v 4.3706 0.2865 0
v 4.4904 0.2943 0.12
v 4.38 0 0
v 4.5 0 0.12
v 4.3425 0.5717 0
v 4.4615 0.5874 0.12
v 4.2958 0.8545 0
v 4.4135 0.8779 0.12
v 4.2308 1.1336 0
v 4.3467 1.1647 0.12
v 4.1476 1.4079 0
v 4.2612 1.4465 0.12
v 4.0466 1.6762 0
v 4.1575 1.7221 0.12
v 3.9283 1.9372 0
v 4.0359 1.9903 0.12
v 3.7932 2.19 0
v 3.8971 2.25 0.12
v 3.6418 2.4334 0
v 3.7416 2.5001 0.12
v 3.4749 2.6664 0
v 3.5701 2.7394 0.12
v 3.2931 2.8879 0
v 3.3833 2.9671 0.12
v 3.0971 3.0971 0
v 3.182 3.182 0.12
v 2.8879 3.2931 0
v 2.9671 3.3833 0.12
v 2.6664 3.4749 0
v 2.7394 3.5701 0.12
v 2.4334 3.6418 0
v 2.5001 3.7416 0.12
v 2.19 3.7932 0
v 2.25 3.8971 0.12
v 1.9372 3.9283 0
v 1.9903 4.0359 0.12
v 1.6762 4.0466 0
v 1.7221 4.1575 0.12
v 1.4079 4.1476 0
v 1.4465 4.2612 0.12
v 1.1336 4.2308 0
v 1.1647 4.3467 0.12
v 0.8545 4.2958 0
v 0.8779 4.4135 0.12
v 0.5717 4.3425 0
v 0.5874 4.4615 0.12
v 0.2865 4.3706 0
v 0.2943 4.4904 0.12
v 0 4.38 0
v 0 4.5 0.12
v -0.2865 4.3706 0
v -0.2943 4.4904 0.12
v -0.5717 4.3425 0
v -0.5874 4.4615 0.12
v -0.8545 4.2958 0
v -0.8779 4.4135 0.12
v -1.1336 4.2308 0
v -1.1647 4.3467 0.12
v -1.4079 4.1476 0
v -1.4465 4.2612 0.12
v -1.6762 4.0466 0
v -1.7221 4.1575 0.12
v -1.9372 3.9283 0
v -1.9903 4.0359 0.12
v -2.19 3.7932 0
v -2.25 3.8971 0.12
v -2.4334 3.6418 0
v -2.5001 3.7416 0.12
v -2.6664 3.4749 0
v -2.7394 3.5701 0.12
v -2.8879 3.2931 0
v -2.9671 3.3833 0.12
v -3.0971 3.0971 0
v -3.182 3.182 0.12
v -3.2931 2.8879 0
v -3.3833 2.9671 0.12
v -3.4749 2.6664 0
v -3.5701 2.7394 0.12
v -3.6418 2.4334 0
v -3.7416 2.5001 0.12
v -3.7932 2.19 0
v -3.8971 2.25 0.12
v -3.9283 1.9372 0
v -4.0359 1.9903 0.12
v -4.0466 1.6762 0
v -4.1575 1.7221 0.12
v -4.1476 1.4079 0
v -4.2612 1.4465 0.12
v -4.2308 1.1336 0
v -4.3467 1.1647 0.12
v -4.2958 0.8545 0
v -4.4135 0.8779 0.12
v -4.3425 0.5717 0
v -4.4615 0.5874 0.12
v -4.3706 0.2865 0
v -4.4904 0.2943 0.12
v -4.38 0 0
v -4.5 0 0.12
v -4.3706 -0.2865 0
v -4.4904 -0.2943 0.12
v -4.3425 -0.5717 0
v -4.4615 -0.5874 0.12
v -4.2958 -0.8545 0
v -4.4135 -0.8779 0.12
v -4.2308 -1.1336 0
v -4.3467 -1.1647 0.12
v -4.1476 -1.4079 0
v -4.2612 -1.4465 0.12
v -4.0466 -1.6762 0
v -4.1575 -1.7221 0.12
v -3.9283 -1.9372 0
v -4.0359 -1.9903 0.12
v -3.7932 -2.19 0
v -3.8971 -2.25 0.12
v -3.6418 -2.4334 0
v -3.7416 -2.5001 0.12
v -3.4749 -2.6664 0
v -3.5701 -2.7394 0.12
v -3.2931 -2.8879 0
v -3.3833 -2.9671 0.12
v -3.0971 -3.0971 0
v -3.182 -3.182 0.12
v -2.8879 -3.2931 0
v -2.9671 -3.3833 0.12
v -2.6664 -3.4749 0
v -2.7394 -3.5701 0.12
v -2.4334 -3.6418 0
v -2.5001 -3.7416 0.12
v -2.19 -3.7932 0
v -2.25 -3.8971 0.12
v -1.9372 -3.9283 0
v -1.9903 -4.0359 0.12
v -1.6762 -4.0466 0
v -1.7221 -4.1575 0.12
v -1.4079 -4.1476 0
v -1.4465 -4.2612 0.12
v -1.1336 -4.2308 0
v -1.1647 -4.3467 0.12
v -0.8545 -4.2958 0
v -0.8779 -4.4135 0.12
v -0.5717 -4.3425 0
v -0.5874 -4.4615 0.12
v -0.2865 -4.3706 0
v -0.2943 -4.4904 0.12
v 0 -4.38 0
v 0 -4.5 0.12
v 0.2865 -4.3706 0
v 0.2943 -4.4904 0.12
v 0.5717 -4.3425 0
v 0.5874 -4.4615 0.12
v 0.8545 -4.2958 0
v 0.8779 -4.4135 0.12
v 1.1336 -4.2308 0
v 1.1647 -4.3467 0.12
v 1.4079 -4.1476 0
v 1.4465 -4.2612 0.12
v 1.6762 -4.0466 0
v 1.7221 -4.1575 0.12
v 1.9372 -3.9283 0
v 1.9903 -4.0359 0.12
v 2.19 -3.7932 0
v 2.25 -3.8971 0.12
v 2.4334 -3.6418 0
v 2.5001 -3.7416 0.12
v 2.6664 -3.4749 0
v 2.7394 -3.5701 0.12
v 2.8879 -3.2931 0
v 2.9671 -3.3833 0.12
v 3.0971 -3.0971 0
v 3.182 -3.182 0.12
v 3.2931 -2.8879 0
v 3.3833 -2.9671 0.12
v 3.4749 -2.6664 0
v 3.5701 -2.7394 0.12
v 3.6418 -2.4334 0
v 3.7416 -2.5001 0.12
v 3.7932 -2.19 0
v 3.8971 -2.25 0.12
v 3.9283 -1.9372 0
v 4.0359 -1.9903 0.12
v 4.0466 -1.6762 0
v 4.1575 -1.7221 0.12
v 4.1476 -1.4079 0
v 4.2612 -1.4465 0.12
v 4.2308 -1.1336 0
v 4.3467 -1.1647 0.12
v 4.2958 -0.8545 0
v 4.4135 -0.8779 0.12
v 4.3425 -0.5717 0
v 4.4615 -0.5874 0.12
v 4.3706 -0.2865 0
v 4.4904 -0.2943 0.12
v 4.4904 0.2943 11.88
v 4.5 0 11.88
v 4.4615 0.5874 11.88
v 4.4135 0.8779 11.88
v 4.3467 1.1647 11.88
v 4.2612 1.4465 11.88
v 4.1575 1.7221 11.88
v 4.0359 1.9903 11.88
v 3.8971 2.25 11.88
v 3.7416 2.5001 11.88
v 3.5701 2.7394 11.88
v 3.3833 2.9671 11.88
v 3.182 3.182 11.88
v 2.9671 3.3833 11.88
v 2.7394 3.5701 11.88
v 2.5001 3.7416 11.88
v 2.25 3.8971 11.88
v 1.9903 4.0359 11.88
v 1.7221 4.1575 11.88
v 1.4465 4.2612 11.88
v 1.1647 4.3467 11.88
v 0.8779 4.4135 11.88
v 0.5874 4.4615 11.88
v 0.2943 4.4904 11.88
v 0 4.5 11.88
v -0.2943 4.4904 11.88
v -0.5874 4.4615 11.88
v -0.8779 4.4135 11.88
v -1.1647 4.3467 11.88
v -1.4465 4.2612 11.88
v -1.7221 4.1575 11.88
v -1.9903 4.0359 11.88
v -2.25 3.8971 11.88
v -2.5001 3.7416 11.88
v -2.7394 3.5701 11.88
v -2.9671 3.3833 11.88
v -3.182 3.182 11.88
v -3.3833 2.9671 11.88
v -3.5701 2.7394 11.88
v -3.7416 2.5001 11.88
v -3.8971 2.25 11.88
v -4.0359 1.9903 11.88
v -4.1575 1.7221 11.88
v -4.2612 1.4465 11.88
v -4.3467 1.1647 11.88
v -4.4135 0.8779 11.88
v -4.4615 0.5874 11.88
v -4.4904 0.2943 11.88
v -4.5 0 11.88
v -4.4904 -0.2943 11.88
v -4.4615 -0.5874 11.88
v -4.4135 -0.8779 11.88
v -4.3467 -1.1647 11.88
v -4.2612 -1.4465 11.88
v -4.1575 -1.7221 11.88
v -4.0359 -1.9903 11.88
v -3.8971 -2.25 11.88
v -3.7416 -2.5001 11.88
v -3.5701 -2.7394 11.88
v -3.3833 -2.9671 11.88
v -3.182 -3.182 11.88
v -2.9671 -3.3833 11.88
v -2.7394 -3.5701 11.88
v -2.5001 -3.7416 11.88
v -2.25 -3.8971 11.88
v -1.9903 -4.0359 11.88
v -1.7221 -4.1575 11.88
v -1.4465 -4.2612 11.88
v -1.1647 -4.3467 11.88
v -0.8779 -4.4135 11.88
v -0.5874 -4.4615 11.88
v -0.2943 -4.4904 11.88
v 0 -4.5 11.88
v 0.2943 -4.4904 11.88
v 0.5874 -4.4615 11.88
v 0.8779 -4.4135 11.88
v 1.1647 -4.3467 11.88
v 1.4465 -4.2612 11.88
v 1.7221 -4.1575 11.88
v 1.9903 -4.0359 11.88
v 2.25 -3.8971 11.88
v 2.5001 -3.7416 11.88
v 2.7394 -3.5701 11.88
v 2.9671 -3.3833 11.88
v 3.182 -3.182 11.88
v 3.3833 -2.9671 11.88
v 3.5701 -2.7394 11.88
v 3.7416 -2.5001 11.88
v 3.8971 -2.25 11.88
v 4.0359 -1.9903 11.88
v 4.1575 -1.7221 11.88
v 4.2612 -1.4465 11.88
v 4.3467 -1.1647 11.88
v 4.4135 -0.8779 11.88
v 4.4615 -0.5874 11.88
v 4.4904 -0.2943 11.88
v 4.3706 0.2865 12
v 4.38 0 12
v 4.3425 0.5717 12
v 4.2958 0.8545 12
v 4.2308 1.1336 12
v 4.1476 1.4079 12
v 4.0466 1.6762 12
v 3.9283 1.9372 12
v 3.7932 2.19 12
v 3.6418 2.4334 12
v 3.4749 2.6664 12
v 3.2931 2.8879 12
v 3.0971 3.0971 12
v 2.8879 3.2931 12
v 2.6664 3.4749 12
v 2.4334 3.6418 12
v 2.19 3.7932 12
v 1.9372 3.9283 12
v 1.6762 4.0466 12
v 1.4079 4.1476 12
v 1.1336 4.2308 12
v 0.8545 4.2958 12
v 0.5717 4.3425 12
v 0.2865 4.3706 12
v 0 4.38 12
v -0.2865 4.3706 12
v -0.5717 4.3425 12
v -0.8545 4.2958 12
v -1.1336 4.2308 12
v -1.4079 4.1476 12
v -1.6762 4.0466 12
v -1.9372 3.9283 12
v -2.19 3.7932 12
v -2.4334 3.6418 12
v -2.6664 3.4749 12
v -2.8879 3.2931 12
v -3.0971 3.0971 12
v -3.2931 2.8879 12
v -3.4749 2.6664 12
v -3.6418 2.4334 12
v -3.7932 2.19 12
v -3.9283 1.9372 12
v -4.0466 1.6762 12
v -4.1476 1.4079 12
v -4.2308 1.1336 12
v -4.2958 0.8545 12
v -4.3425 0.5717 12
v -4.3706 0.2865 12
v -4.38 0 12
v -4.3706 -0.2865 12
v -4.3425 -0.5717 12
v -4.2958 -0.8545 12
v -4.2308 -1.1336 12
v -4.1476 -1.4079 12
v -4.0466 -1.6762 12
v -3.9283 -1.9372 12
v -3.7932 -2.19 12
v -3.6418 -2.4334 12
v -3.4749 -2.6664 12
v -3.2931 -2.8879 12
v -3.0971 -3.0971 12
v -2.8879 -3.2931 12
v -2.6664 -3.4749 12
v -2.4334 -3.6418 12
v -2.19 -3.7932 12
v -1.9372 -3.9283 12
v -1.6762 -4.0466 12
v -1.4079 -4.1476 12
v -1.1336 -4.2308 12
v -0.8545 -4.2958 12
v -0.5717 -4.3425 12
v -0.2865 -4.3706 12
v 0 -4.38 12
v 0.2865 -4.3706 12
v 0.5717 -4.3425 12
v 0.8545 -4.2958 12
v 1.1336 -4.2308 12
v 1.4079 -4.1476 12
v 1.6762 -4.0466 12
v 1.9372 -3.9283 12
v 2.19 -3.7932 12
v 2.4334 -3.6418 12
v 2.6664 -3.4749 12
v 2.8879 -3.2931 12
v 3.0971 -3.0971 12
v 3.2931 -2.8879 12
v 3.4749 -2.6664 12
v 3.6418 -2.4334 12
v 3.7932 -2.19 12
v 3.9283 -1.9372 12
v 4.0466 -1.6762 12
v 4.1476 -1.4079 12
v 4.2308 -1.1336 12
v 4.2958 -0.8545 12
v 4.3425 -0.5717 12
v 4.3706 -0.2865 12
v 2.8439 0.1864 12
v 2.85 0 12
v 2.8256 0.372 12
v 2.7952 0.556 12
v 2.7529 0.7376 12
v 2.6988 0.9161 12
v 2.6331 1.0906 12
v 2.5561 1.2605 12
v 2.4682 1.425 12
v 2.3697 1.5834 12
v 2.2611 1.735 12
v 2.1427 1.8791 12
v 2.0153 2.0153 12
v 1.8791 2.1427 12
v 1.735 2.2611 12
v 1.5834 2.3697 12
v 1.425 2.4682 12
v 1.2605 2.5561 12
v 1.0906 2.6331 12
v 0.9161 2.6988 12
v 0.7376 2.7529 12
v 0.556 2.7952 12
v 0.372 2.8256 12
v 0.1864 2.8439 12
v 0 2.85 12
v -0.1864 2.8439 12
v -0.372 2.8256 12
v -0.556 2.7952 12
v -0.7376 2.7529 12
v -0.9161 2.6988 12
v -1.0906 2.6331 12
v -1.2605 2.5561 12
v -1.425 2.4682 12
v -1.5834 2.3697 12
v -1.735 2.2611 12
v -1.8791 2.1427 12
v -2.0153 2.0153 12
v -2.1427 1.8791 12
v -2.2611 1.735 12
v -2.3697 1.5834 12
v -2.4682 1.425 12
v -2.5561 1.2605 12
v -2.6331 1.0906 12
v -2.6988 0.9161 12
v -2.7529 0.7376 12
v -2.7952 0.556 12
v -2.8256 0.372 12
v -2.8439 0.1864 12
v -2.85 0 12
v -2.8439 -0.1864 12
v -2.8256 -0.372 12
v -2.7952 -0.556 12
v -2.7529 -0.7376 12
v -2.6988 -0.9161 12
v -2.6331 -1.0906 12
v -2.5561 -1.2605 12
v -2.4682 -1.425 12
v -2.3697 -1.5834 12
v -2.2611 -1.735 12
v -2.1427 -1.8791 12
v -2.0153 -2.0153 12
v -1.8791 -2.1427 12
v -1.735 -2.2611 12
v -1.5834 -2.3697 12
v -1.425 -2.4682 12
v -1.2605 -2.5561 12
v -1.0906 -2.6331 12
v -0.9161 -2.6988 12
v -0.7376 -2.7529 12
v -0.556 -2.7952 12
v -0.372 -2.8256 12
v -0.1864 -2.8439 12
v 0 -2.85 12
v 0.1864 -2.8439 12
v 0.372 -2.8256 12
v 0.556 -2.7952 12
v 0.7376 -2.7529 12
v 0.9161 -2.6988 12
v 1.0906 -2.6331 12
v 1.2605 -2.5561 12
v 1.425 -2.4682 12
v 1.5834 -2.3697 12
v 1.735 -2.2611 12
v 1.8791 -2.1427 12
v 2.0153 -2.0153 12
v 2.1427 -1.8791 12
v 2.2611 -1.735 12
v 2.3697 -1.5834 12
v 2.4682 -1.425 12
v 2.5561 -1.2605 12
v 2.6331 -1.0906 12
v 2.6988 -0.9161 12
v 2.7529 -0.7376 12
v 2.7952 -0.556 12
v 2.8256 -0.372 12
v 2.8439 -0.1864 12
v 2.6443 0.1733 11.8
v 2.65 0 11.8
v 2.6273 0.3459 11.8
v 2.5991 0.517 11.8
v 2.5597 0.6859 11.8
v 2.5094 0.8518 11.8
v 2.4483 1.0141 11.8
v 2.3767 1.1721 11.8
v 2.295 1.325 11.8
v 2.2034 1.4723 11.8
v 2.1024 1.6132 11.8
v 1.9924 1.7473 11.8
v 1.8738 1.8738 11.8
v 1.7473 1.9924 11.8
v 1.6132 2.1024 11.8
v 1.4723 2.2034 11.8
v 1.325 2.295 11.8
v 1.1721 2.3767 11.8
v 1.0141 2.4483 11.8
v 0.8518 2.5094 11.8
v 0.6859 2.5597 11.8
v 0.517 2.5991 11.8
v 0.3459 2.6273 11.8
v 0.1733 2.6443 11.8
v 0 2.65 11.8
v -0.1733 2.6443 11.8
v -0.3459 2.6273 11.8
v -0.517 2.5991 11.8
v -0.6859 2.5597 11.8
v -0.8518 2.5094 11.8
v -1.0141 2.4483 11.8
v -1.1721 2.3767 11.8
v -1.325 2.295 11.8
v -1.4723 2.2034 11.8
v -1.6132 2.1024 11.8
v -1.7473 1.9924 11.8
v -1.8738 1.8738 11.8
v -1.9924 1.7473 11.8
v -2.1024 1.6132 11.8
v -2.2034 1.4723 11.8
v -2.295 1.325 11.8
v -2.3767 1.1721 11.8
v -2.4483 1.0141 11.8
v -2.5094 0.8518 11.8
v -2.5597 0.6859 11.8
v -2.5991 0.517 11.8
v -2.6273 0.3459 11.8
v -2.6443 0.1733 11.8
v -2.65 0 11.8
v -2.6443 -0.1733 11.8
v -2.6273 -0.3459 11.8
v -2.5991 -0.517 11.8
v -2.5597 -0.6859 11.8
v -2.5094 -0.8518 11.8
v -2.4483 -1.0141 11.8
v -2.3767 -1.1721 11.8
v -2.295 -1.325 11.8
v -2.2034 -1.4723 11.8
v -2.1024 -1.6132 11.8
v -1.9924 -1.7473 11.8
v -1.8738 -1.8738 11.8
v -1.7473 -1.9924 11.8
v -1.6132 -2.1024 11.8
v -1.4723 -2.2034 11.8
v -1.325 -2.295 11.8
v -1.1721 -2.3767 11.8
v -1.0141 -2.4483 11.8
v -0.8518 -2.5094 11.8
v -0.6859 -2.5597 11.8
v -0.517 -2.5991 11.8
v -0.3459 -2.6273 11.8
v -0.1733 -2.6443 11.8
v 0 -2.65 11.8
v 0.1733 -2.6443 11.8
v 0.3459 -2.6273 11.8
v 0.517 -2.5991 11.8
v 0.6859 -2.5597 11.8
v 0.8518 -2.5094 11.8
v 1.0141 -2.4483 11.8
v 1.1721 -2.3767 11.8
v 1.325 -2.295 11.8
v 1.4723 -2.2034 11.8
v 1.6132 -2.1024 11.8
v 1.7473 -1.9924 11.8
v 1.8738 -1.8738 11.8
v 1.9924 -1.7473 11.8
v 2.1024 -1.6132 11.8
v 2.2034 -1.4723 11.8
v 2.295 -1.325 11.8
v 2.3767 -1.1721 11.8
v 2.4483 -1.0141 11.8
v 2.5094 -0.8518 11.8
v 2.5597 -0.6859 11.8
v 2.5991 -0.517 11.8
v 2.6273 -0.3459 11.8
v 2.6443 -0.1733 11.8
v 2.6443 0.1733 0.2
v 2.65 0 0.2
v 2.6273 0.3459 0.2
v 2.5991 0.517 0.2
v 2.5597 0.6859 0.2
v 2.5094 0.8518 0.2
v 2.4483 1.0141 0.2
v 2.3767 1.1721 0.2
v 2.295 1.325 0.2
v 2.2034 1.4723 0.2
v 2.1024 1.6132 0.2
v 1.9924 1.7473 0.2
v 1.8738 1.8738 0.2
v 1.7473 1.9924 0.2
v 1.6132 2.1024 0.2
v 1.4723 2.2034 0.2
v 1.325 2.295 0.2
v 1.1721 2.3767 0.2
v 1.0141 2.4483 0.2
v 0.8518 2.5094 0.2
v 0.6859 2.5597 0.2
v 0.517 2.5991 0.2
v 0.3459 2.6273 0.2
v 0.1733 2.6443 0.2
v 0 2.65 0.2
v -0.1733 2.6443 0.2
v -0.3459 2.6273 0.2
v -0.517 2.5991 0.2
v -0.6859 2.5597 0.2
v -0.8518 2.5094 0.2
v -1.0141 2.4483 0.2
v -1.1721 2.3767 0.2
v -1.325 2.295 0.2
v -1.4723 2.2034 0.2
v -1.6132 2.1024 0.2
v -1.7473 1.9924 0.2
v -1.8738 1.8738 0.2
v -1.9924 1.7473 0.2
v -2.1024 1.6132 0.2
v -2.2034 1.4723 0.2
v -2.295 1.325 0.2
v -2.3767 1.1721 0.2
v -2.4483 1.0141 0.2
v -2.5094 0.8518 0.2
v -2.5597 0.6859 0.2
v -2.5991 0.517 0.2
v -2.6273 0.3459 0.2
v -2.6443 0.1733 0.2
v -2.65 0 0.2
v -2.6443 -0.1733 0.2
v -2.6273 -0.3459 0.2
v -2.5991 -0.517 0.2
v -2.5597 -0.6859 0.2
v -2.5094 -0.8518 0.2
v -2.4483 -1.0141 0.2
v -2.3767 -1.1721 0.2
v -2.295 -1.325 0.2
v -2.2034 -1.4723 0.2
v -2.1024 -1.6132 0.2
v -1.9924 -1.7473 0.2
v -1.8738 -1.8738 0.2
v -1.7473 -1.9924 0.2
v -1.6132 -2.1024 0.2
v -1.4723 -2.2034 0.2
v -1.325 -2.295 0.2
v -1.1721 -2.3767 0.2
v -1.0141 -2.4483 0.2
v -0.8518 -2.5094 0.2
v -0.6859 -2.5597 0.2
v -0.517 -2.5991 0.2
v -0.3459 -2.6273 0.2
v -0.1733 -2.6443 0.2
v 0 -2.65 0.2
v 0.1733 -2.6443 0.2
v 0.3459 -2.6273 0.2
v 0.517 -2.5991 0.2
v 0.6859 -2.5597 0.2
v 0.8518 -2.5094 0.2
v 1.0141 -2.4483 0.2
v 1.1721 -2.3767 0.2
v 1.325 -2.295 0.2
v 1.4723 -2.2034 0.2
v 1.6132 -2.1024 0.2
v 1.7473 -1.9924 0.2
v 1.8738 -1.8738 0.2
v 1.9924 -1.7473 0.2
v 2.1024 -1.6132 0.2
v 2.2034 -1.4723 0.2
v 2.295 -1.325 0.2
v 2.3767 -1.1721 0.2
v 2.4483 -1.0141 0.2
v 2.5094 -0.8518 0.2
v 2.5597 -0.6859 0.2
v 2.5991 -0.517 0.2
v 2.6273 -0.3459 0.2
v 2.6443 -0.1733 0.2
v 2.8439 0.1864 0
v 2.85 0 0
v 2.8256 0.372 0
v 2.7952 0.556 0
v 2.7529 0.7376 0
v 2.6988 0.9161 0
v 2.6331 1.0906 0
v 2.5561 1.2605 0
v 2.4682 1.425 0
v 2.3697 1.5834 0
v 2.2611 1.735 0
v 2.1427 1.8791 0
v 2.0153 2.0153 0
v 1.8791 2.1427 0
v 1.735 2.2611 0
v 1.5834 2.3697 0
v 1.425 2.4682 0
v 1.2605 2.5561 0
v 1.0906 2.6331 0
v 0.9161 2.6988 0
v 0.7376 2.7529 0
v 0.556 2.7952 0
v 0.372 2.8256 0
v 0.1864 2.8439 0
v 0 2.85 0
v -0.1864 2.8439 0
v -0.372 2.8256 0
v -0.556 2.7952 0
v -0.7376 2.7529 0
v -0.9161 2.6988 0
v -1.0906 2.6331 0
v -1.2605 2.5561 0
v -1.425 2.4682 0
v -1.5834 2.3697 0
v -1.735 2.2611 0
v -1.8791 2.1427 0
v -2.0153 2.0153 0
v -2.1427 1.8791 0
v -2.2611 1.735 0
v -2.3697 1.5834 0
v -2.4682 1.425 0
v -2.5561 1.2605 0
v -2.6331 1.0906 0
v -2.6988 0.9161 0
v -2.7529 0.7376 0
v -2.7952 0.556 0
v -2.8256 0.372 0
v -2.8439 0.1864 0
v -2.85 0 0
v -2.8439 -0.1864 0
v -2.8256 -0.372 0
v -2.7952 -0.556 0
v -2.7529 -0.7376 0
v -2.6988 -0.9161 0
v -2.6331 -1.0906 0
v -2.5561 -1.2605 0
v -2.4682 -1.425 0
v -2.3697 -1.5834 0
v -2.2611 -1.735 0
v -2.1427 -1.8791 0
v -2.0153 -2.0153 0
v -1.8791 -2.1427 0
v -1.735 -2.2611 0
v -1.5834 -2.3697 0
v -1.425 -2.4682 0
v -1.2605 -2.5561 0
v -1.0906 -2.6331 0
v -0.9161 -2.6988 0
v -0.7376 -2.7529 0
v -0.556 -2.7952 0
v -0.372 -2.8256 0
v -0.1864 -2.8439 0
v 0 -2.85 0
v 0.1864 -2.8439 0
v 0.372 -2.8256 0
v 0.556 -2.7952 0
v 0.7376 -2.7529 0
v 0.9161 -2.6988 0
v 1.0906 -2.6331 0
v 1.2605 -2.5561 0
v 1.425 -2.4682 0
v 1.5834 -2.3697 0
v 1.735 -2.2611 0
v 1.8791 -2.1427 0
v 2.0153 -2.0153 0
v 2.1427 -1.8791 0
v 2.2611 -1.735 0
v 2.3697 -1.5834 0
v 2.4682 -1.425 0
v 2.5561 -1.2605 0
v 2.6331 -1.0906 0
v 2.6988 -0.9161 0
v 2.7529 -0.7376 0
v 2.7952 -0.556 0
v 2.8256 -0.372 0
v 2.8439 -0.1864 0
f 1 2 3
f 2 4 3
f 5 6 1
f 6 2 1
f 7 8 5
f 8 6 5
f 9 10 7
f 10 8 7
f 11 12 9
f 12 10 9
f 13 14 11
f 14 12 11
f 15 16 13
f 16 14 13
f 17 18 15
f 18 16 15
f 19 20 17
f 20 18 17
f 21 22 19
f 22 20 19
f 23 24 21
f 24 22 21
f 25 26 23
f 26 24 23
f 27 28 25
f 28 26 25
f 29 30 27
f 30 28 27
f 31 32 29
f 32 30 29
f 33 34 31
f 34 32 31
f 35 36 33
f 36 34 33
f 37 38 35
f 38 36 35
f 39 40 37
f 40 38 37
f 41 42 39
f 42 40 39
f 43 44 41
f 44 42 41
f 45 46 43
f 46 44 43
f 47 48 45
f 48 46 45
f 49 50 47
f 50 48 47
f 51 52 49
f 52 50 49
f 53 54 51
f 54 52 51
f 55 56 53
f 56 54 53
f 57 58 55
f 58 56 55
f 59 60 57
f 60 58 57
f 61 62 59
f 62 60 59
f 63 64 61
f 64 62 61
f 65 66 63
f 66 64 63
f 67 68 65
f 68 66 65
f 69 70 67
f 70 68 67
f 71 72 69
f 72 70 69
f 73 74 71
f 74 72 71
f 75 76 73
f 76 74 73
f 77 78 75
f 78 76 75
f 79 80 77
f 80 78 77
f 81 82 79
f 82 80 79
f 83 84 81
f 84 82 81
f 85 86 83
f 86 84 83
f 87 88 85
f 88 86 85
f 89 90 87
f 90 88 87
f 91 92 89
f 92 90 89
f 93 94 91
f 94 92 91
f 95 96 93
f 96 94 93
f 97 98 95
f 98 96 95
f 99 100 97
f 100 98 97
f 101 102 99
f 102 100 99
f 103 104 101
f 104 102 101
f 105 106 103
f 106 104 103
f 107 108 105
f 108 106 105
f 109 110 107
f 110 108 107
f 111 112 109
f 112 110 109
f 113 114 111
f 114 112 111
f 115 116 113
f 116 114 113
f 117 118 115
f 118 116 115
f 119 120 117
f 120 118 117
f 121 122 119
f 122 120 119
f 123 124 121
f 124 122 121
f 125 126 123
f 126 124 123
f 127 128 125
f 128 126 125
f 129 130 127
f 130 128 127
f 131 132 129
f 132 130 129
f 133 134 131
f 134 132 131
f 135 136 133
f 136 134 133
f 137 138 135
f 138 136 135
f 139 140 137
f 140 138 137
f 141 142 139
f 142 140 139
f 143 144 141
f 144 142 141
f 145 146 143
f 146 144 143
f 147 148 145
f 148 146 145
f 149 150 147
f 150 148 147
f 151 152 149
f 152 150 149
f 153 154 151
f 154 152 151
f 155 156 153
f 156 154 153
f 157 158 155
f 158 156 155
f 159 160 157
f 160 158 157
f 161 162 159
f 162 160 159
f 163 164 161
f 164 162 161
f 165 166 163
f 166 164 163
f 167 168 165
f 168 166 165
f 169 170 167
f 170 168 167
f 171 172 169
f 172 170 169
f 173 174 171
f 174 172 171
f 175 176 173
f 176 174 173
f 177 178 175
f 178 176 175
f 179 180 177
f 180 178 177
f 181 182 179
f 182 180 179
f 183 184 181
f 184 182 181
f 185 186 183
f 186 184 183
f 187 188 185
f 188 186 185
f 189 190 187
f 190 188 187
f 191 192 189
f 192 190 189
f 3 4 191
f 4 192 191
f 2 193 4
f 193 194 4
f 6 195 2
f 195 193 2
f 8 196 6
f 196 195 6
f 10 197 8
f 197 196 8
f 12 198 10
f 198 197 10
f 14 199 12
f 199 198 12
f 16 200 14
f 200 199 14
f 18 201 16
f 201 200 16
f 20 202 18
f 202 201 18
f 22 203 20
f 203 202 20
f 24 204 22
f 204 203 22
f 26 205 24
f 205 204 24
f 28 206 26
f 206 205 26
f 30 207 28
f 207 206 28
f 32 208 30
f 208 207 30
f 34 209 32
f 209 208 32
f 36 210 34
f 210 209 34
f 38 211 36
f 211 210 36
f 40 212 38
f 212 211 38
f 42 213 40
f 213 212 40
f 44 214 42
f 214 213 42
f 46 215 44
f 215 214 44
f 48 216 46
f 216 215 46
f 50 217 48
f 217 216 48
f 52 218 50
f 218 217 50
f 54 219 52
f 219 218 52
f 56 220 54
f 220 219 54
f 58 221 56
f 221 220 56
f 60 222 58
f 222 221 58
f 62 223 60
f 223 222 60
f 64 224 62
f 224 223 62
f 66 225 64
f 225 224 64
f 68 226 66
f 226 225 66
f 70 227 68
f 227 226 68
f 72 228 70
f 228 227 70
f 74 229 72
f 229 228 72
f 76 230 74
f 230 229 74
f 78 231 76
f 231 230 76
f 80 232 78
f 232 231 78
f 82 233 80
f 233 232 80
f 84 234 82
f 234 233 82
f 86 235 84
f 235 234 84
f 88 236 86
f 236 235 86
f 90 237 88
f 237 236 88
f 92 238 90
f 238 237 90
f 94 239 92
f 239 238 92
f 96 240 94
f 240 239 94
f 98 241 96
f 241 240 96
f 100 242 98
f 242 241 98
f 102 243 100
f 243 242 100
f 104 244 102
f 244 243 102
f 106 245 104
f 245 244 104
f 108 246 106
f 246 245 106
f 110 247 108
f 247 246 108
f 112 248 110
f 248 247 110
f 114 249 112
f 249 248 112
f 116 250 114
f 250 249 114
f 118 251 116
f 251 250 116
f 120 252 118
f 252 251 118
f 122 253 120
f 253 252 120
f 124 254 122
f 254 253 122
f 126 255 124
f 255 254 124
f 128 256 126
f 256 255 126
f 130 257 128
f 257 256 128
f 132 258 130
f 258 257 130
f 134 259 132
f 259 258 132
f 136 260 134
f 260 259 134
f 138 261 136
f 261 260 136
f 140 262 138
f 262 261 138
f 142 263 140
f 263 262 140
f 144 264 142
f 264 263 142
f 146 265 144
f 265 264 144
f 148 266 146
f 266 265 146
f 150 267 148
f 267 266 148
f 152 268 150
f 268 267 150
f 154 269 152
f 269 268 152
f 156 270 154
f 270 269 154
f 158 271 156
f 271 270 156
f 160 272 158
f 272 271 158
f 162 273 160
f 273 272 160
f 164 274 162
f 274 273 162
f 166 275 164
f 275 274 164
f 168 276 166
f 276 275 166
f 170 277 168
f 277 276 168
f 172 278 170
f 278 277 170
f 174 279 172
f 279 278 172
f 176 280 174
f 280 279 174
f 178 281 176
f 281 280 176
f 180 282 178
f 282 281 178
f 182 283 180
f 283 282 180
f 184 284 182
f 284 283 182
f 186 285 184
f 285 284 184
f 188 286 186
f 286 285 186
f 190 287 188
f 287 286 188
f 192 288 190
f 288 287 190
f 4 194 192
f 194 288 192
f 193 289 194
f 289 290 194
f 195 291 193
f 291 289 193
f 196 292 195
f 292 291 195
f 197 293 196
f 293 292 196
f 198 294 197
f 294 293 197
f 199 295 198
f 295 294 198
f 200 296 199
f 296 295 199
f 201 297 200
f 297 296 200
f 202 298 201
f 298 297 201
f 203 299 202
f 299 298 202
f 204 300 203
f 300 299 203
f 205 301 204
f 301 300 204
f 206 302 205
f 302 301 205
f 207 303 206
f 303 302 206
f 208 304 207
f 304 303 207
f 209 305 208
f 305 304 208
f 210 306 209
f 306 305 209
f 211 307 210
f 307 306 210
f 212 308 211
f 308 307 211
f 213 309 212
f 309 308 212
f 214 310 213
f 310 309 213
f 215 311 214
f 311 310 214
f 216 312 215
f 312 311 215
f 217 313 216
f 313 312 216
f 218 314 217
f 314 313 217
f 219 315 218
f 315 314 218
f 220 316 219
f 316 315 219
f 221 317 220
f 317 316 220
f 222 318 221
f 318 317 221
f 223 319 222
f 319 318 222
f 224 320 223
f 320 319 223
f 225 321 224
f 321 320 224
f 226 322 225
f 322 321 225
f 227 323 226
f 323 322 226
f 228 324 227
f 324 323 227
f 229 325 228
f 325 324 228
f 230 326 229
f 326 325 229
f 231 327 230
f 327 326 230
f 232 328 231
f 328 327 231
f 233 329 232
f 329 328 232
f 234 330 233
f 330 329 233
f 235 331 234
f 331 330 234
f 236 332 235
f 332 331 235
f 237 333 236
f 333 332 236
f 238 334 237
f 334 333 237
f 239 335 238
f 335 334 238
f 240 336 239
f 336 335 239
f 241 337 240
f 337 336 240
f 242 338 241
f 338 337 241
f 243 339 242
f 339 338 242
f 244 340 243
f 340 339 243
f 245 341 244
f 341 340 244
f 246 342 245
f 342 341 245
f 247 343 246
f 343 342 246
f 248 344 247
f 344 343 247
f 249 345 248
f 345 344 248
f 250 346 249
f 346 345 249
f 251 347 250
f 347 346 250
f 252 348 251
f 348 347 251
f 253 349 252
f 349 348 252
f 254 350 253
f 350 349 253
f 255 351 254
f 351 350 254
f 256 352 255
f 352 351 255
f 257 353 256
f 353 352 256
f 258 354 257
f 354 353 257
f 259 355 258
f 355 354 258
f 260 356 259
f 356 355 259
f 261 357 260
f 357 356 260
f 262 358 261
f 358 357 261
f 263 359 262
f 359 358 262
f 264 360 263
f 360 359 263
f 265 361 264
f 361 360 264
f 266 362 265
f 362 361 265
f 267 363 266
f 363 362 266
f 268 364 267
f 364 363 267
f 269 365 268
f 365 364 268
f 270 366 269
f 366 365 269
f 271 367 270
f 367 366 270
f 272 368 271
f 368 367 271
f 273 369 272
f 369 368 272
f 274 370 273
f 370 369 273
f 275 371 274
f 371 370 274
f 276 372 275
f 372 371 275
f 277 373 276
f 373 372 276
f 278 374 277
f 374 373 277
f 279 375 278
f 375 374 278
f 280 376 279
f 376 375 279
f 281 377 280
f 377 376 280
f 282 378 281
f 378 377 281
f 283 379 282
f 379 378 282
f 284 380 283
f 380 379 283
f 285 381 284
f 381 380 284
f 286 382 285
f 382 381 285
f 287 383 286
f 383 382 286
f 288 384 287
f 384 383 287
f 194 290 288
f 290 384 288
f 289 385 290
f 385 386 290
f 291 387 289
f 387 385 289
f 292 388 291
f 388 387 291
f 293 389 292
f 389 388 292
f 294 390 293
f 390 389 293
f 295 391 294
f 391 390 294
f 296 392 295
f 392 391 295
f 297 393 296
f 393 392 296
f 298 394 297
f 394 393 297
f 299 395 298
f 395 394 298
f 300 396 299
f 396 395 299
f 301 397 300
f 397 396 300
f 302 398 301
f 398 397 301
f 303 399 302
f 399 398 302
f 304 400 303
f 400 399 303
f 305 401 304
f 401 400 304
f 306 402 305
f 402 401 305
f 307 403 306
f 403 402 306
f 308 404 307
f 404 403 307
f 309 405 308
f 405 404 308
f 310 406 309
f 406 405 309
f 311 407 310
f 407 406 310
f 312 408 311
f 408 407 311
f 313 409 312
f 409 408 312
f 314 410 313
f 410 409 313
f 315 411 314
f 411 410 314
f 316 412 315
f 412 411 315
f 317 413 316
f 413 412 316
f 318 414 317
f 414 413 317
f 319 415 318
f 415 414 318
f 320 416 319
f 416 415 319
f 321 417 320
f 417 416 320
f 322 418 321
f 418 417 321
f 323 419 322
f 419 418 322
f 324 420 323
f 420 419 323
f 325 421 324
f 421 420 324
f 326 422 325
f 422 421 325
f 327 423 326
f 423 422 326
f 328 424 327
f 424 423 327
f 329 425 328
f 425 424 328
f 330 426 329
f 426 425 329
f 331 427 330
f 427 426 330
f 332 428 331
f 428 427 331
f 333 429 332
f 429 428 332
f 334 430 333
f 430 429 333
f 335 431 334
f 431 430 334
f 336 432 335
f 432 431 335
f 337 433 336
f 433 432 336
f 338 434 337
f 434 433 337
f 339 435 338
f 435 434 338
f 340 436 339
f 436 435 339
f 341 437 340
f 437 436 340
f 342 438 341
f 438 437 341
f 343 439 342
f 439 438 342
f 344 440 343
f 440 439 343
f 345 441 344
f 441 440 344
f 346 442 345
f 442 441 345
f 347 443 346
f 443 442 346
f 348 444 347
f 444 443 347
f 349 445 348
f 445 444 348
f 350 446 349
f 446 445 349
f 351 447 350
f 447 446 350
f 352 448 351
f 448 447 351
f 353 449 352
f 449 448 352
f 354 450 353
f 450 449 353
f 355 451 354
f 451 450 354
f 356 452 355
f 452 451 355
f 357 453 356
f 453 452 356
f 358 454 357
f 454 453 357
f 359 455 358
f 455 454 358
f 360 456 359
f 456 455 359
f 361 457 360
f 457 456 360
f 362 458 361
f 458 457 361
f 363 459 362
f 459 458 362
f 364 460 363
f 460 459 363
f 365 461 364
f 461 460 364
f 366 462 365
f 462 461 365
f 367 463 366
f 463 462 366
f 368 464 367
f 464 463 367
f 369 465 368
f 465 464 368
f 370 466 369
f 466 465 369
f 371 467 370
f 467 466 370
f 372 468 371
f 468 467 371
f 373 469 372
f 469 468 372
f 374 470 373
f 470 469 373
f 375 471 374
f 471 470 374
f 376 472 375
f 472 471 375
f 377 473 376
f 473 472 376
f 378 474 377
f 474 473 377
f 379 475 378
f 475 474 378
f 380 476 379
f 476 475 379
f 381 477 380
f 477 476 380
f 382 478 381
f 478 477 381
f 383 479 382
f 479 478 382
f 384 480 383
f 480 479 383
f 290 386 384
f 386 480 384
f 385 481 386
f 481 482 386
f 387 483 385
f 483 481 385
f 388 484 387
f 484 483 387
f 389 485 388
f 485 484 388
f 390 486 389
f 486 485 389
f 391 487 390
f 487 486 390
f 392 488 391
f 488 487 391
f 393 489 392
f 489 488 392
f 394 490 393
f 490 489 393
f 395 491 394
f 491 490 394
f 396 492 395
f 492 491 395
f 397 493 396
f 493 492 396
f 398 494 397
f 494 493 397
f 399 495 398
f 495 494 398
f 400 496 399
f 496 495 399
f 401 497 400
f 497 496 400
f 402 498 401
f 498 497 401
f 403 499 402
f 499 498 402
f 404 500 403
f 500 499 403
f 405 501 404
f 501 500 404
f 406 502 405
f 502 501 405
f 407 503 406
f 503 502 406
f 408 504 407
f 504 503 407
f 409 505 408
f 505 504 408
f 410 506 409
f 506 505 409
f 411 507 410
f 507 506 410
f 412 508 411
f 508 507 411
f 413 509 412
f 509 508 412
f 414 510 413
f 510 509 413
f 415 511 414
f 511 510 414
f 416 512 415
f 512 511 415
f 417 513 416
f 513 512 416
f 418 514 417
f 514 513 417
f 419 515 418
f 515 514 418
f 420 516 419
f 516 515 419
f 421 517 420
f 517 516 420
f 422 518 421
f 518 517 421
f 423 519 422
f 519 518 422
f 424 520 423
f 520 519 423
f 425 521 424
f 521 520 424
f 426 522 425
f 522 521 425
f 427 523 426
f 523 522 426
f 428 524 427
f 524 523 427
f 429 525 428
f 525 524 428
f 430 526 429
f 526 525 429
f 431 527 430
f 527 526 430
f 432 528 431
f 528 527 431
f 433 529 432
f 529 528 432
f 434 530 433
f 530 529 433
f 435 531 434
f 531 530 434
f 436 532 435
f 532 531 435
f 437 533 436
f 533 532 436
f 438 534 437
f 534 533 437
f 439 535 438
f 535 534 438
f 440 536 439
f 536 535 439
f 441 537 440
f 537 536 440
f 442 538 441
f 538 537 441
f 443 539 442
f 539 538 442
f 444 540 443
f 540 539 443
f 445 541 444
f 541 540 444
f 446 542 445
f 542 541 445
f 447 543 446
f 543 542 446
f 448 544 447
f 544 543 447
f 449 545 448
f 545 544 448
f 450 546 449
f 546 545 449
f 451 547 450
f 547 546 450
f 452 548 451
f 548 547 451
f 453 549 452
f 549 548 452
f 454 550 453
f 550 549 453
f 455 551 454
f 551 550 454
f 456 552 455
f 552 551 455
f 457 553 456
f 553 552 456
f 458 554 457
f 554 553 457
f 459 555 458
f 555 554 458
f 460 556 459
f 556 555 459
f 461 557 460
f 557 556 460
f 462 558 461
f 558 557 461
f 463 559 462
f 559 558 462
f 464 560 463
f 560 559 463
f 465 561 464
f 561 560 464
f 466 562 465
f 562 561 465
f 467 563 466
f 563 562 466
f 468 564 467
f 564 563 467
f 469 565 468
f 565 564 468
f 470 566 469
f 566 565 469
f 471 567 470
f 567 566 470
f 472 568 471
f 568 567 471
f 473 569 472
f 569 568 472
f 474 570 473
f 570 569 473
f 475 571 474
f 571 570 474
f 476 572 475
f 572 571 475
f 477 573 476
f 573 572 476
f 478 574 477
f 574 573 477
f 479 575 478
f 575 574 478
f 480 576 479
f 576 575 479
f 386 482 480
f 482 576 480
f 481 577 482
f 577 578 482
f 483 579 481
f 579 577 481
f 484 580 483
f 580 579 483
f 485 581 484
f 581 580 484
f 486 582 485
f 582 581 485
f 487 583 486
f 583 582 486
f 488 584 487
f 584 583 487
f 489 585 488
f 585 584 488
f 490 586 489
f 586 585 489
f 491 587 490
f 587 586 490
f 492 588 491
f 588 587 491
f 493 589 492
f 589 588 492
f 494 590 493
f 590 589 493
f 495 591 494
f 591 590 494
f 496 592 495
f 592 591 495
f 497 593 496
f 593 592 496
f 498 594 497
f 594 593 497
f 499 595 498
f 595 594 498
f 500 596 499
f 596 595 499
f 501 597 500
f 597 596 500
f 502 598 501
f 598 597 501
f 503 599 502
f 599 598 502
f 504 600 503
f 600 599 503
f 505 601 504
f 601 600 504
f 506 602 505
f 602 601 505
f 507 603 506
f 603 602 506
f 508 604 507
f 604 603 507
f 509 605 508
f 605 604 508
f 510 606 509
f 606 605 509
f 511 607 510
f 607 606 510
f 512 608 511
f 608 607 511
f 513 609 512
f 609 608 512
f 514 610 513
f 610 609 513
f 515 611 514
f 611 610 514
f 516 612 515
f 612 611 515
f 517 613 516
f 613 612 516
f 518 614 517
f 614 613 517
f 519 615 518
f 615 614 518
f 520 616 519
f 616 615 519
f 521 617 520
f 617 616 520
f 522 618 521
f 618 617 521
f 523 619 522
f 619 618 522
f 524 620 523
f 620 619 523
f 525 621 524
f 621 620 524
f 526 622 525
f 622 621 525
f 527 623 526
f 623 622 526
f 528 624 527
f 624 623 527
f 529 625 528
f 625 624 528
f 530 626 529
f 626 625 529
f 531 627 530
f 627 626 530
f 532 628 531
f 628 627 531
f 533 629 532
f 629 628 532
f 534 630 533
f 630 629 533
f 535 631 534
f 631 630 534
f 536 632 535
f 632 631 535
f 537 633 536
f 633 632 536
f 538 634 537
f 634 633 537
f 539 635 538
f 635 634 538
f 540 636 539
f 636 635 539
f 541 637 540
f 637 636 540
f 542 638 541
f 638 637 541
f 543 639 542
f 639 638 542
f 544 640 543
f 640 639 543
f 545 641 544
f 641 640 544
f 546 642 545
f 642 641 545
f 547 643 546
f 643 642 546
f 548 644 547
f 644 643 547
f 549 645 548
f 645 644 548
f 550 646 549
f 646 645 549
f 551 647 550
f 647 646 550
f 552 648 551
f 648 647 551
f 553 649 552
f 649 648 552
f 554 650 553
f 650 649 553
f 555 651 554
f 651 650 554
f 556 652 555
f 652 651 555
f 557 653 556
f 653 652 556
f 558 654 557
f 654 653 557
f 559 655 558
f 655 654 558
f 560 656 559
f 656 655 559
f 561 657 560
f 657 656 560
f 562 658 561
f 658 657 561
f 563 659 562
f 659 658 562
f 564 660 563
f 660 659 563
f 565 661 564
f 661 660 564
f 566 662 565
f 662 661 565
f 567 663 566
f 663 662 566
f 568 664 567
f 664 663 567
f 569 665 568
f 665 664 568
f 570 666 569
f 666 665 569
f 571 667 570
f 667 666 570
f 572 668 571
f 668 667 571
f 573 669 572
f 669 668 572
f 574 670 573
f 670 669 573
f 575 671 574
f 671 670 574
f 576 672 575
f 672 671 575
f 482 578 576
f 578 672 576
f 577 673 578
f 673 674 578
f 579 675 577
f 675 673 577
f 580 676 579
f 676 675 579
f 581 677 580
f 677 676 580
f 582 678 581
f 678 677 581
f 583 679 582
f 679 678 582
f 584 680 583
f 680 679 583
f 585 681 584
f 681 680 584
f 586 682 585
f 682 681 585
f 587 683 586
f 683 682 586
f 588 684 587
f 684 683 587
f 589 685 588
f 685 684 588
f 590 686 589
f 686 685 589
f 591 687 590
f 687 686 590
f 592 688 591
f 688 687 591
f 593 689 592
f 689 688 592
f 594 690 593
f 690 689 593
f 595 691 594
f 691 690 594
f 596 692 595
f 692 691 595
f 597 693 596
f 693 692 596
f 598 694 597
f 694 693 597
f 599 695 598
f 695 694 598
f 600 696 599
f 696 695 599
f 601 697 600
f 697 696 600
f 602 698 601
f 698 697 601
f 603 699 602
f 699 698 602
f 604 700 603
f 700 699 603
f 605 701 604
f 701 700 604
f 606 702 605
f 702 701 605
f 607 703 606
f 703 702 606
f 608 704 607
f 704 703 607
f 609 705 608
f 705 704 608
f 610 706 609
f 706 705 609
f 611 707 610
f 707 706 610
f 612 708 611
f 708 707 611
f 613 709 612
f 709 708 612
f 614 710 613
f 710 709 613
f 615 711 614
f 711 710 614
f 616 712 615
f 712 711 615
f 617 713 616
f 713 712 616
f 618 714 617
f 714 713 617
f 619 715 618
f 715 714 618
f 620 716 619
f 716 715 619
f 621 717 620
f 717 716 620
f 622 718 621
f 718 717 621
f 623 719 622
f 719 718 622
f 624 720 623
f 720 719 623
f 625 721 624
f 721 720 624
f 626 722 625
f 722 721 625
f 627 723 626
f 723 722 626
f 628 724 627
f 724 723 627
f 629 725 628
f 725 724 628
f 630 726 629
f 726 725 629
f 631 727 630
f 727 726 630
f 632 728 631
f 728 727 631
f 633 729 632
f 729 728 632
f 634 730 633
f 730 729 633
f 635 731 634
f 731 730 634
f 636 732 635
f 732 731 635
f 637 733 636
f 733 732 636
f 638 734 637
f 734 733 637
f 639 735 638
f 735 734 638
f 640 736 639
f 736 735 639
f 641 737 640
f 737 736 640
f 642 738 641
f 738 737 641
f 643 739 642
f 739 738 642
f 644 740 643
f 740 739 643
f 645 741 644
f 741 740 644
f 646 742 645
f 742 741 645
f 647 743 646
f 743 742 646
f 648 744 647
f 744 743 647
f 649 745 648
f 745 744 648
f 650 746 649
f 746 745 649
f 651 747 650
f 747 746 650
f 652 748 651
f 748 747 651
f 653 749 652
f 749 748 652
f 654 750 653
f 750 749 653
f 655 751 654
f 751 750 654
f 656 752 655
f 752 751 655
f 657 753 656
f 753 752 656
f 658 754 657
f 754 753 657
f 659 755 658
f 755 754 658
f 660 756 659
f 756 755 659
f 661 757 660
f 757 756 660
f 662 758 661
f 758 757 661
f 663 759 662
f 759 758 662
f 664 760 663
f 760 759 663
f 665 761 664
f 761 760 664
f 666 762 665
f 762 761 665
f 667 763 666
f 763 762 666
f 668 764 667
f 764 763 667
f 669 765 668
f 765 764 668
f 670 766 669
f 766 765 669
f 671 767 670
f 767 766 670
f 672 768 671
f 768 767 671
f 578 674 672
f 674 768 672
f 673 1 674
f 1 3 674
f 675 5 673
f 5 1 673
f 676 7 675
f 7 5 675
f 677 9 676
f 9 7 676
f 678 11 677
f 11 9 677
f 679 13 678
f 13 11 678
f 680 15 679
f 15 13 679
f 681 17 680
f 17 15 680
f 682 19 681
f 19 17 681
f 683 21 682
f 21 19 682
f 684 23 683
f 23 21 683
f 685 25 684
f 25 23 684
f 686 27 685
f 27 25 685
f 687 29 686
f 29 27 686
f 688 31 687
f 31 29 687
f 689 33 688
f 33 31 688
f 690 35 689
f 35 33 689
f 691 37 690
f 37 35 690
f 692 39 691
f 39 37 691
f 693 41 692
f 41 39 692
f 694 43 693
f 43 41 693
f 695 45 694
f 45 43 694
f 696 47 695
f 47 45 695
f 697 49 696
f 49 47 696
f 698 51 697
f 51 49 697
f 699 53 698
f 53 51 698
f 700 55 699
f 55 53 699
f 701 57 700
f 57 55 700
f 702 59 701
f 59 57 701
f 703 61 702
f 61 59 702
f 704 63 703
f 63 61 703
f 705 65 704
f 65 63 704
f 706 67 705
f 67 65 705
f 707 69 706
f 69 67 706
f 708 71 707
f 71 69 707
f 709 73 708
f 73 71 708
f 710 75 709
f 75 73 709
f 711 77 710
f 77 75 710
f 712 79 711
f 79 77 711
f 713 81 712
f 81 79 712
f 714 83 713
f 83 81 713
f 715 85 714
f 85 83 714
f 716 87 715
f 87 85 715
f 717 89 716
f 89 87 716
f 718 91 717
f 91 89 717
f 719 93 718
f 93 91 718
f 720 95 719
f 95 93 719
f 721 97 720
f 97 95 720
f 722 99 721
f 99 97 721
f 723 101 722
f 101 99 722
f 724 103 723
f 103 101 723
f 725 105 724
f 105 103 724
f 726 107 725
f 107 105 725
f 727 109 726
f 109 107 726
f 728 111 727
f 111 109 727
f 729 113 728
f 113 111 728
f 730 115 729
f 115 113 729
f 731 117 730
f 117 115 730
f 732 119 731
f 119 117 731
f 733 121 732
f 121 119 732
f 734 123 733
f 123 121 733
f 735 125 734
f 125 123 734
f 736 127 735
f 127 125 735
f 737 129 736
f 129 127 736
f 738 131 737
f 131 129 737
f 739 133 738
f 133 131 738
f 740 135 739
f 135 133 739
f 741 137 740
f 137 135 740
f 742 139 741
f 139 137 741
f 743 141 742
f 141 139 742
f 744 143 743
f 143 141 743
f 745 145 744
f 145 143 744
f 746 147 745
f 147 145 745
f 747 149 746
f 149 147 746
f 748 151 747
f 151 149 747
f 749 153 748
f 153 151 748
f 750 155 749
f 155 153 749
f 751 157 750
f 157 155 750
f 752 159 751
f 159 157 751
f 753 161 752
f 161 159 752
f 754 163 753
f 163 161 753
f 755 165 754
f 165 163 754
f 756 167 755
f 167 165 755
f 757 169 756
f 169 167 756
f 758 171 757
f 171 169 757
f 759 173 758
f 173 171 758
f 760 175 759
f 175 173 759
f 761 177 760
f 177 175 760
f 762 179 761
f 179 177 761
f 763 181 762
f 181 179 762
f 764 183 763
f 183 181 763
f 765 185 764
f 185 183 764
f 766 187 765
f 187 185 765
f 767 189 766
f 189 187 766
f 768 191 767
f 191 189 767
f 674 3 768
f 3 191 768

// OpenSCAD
// OOMP generic catalogue model; units: mm.
// Stud length is additional to body depth. Tapping depths are model assumptions.
variant = "full"; // [full, display]
family = "spacer";
connection_type = "plain";
depth_mm = 12;
stud_length_mm = 0;
tapped_depth_mm = 0;
bore_mm = 5.3;
outer_diameter_mm = 9;
across_flats_mm = 6;
thread_nominal_diameter_mm = 3;
thread_pitch_mm = 0.5;
edge_chamfer_mm = 0.12;
mouth_chamfer_mm = 0.2;
angular_segments = 96;
samples_per_pitch = 16;

// Boundary travels up the outside, then down any tapped/plain bore.
// Equal-height rings at shoulders form the annular shoulder faces.
n = angular_segments;
threaded = family == "standoff";
has_stud = connection_type == "stud_to_tapped" || connection_type == "stud_to_stud";
two_studs = connection_type == "stud_to_stud";
through = !threaded || connection_type == "tapped_to_tapped";
pitch = thread_pitch_mm;
diameter = threaded ? thread_nominal_diameter_mm : bore_mm;
minor = diameter - 5*sqrt(3)*pitch/8;
transition = mouth_chamfer_mm + (threaded ? 5*sqrt(3)*pitch/16 : 0);
tip_chamfer = mouth_chamfer_mm + 17*sqrt(3)*pitch/48;
function sorted(v) = len(v)<=1 ? v : let(p=v[0])
    concat(sorted([for(x=v) if(x<p-1e-8) x]), [p], sorted([for(x=v) if(x>p+1e-8) x]));
function reverse(v) = [for(i=[len(v)-1:-1:0]) v[i]];
function theta(i) = i*360/n;
function fract(x) = x-floor(x);
function phase_distance(i,z) = abs(fract(z/pitch-theta(i)/360+0.5)-0.5);
function thread_r(i,z) = minor/2 + min(5*sqrt(3)*pitch/16,
    max(0,(phase_distance(i,z)-0.125)*pitch*sqrt(3)));
function stud_r(i,z,tip) = min(diameter/2 - (variant=="full" ?
    min(17*sqrt(3)*pitch/48,max(0,(phase_distance(i,z)-0.0625)*pitch*sqrt(3))) : 0),
    diameter/2-tip_chamfer+abs(z-tip));
function body_r(i,z) = (threaded ? across_flats_mm/2/cos(theta(i)%60-30) : outer_diameter_mm/2)
    - max(0,edge_chamfer_mm-min(z,depth_mm-z));
function bore_r(i,z) = max(threaded ? (variant=="full" ? thread_r(i,z) : minor/2) : diameter/2,
    diameter/2+mouth_chamfer_mm-(through ? min(z,depth_mm-z) : depth_mm-z));
function stud_z(a,b,tip) = let(count=variant=="full" ? ceil(stud_length_mm/pitch*samples_per_pitch) : 1)
    sorted(concat([for(i=[0:count]) a+(b-a)*i/count], [tip==a ? tip+tip_chamfer : tip-tip_chamfer]));
body_z = sorted([0,edge_chamfer_mm,depth_mm-edge_chamfer_mm,depth_mm]);
low = through ? 0 : depth_mm-tapped_depth_mm;
count = threaded && variant=="full" ? ceil((depth_mm-low)/pitch*samples_per_pitch) : 1;
bore_z = two_studs ? [] : reverse(sorted(concat(
    [for(i=[0:count]) low+(depth_mm-low)*i/count],
    [depth_mm-mouth_chamfer_mm,depth_mm-transition],
    through ? [mouth_chamfer_mm,transition] : [])));
// Ring descriptors: [height, kind, tip]. Kind: 0 body, 1 stud, 2 bore.
rings = concat(
    has_stud ? [for(z=stud_z(-stud_length_mm,0,-stud_length_mm)) [z,1,-stud_length_mm]] : [],
    [for(z=body_z) [z,0,0]],
    two_studs ? [for(z=stud_z(depth_mm,depth_mm+stud_length_mm,depth_mm+stud_length_mm)) [z,1,depth_mm+stud_length_mm]] : [],
    [for(z=bore_z) [z,2,0]]);
function radius(i,ring) = ring[1]==0 ? body_r(i,ring[0]) :
    ring[1]==1 ? stud_r(i,ring[0],ring[2]) : bore_r(i,ring[0]);
points = concat([for(ring=rings) for(i=[0:n-1])
    [radius(i,ring)*cos(theta(i)),radius(i,ring)*sin(theta(i)),ring[0]]],
    through ? [] : [[0,0,rings[0][0]],[0,0,rings[len(rings)-1][0]]]);
center = len(rings)*n;
last = (len(rings)-1)*n;
// OpenSCAD winding is opposite to STL winding.
faces = concat(
    [for(j=[0:len(rings)-(through ? 1 : 2)]) for(i=[0:n-1]) each
        let(a=j*n+i,b=j*n+(i+1)%n,c=((j+1)%len(rings))*n+(i+1)%n,d=((j+1)%len(rings))*n+i)
        [[a,c,b],[a,d,c]]],
    through ? [] : [for(i=[0:n-1]) each let(k=(i+1)%n)
        [[center,i,k],[center+1,last+k,last+i]]]);
assert(family=="spacer" || family=="standoff");
assert(!threaded || connection_type=="tapped_to_tapped" || has_stud);
assert(depth_mm>0 && diameter>0 && pitch>0);
assert(variant=="full" || variant=="display");
assert(n>=24 && n%12==0 && samples_per_pitch>=8);
assert(mouth_chamfer_mm>0 && mouth_chamfer_mm<depth_mm/2);
assert(edge_chamfer_mm>=0 && edge_chamfer_mm<depth_mm/2);
assert(diameter+4*max(mouth_chamfer_mm,edge_chamfer_mm) < (threaded ? across_flats_mm : outer_diameter_mm));
assert(!has_stud || stud_length_mm>2*mouth_chamfer_mm);
assert(!through || !threaded || 2*transition<depth_mm);
assert(connection_type!="stud_to_tapped" || (tapped_depth_mm>transition && tapped_depth_mm<depth_mm));
color([0.86,0.85,0.81]) polyhedron(points=points,faces=faces,convexity=20);
